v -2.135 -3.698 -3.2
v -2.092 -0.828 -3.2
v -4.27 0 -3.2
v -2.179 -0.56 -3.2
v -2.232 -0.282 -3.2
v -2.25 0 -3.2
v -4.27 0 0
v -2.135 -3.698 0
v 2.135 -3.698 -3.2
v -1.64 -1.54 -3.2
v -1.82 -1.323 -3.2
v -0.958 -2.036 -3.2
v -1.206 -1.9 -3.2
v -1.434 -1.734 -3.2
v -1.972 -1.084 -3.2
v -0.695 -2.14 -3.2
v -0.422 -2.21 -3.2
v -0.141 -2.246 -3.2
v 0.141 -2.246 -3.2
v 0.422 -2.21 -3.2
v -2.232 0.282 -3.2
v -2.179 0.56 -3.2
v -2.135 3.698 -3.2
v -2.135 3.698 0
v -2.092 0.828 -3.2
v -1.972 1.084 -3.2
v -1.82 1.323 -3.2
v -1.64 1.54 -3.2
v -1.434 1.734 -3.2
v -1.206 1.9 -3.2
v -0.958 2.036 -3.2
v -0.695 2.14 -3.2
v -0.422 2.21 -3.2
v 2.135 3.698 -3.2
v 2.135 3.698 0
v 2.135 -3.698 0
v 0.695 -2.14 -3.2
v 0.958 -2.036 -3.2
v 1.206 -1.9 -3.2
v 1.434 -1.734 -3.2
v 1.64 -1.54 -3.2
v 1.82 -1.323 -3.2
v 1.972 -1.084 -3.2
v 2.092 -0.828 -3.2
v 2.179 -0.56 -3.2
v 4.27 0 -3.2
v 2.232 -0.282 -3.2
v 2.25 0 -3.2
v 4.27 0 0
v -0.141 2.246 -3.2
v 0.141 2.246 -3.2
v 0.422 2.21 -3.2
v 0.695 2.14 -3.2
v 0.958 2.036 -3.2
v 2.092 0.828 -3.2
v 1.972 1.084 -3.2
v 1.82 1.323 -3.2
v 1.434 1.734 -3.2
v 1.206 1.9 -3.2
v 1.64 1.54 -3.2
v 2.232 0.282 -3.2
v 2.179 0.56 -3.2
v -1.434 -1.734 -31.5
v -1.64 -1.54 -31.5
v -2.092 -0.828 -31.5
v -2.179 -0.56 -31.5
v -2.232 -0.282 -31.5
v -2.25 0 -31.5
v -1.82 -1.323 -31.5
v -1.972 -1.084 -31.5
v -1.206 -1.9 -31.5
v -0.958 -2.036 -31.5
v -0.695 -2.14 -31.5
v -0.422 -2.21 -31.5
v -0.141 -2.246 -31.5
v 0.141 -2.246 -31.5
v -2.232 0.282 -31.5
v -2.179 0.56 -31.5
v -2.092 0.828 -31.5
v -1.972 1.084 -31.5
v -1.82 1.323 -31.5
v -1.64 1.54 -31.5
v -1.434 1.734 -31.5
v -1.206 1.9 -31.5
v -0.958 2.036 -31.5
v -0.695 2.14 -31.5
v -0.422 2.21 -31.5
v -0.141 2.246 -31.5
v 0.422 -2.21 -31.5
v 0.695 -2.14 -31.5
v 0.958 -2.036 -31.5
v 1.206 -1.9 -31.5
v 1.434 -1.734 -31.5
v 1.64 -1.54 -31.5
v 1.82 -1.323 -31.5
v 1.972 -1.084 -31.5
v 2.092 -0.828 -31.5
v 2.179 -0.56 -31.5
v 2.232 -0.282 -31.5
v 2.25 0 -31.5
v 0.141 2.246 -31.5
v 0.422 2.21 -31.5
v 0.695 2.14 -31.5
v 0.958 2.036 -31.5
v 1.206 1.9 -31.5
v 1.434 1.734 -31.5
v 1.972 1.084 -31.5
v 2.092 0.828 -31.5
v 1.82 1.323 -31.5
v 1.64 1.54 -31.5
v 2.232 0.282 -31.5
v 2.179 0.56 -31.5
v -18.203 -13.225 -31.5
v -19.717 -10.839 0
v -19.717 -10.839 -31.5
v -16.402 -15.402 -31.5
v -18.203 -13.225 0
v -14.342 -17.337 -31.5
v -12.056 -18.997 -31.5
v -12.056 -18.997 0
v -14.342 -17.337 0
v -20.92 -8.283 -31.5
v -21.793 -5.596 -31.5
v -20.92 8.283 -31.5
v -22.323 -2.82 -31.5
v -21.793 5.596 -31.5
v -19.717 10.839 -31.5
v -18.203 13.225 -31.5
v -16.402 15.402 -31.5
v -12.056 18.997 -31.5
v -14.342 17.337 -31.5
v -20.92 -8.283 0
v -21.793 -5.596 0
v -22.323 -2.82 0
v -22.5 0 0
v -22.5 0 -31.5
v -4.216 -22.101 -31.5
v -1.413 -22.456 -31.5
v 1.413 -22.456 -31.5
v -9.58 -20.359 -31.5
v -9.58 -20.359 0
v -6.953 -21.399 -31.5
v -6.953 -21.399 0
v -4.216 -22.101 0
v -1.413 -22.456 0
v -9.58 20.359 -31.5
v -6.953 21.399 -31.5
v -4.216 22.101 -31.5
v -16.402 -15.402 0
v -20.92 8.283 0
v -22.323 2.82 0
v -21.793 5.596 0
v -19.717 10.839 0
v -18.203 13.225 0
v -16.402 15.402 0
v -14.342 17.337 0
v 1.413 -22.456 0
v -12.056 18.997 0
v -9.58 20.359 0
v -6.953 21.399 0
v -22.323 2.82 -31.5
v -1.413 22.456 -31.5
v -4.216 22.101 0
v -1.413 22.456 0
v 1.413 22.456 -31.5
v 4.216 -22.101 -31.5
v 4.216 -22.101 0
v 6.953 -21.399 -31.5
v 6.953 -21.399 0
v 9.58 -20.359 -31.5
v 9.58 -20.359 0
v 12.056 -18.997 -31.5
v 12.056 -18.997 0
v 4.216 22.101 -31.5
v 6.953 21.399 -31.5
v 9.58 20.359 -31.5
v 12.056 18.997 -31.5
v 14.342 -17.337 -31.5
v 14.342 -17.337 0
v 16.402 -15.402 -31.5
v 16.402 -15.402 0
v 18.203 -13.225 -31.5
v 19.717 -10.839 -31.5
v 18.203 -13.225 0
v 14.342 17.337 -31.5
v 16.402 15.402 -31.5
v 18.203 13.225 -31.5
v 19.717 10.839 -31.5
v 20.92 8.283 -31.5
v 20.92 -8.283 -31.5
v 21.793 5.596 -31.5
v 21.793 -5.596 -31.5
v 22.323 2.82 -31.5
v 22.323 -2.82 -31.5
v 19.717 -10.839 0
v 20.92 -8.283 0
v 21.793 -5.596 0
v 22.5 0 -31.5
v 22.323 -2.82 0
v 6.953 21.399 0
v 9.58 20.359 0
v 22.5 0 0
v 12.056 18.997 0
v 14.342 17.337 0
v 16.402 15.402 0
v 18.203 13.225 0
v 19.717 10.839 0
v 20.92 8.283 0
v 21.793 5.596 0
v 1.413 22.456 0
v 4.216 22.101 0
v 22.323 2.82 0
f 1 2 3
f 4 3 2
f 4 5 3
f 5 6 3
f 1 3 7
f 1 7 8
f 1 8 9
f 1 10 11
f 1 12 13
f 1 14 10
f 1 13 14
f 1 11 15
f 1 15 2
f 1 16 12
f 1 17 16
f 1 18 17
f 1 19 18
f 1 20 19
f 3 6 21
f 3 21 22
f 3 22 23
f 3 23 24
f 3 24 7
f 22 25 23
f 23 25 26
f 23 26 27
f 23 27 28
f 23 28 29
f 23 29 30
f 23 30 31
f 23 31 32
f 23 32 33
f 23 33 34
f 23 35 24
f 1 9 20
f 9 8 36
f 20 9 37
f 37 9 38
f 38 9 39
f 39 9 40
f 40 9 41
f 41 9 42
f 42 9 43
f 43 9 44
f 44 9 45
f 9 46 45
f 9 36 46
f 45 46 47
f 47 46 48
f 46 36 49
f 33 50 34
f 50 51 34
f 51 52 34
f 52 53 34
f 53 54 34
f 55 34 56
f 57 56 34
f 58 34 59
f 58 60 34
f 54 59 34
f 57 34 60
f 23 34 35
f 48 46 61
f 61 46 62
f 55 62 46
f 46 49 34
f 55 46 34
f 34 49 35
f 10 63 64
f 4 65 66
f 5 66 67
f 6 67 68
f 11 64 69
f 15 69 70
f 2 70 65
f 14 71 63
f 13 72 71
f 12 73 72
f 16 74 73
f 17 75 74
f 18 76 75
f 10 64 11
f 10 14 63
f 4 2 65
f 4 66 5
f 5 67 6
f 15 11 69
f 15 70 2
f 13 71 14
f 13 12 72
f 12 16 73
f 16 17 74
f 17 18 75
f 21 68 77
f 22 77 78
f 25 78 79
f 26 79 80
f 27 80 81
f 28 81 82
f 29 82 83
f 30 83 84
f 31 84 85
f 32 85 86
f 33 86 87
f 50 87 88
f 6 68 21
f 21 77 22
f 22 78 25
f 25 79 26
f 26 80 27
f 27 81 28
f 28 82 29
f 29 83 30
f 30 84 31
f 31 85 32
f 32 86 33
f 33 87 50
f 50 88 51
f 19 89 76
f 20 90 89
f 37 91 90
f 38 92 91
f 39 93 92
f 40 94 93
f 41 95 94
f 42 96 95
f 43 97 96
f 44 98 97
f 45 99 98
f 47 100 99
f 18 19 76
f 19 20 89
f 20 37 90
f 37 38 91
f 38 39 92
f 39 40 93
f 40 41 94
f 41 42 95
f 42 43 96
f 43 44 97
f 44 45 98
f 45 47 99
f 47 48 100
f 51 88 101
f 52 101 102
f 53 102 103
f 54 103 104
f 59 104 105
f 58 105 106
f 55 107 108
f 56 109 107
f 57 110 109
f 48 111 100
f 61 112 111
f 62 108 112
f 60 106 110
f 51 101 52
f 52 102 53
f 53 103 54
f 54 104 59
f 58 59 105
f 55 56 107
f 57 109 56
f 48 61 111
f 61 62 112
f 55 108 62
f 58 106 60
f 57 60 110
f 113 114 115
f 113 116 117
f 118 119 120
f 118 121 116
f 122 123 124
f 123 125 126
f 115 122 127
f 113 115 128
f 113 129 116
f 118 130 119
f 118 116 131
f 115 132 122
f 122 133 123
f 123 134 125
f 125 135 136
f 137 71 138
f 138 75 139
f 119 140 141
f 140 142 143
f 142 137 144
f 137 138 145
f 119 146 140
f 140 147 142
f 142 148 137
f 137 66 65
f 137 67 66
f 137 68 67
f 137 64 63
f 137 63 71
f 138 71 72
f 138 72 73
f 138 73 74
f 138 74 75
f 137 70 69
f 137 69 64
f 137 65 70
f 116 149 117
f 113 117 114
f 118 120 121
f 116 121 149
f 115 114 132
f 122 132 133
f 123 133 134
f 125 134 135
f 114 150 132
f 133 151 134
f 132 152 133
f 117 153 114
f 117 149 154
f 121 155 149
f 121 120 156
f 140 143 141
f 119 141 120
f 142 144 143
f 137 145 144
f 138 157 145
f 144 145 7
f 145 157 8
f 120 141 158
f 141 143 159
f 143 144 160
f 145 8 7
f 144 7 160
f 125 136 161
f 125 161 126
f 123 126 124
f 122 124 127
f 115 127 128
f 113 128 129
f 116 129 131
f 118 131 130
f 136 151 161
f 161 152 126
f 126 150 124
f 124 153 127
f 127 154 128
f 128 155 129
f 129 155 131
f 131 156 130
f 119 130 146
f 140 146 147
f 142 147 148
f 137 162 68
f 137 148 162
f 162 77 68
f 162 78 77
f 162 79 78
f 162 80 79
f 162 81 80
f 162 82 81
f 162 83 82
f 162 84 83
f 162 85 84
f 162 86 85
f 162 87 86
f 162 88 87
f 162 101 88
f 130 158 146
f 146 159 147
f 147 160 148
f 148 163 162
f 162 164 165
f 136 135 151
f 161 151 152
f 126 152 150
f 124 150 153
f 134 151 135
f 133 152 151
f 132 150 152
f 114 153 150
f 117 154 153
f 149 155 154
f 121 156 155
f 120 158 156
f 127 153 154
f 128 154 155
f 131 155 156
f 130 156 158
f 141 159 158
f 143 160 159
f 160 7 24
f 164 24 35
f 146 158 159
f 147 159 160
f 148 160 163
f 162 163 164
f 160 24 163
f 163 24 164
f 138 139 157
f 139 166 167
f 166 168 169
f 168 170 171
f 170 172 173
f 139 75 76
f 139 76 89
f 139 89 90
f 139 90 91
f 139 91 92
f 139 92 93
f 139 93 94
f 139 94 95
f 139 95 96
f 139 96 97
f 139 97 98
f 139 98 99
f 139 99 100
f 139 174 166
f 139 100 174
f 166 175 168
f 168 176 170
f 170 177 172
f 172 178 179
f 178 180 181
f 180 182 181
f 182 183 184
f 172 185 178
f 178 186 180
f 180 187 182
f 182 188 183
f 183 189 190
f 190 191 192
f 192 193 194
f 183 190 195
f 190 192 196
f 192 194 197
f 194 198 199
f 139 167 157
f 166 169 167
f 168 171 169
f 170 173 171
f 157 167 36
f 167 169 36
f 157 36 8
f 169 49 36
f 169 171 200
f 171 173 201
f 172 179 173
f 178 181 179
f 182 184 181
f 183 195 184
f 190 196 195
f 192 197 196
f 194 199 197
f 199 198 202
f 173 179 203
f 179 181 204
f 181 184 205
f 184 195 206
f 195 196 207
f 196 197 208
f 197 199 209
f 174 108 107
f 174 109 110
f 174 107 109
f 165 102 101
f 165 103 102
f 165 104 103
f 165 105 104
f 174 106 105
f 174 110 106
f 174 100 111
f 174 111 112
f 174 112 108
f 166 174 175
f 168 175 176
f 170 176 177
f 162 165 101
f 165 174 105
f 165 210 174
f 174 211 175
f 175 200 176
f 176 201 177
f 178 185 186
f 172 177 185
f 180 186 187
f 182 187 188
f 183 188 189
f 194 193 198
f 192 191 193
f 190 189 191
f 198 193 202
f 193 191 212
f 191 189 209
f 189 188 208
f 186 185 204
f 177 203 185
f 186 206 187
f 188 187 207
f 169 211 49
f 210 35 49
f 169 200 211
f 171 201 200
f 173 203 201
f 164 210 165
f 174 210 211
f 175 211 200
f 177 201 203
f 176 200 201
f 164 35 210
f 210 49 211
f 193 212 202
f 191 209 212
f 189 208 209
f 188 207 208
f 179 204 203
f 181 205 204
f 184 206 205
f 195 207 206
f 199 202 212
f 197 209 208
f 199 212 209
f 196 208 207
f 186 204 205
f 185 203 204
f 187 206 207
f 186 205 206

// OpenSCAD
$fn = 50;

difference() {
	union() {
		translate(v = [0, 0, -31.5]) {
			cylinder(h = 31.5, r = 22.5);
		}
	}
	union() {
		translate(v = [0, 0, 0]) {
			rotate(a = [0, 0, 0]) {
				difference() {
					union() {
						translate(v = [0, 0, -3.2]) {
							linear_extrude(height = 3.2) {
								polygon(points = [[4.2698, 0.0], [2.1349000000000005, 3.697755269078796], [-2.134899999999999, 3.6977552690787965], [-4.2698, 5.228996902999369e-16], [-2.134900000000002, -3.6977552690787956], [2.1348999999999974, -3.697755269078798]]);
							}
						}
					}
					union();
				}
			}
		}
		#translate(v = [0, 0, -100.0]) {
			cylinder(h = 200, r = 2.25);
		}
	}
}
